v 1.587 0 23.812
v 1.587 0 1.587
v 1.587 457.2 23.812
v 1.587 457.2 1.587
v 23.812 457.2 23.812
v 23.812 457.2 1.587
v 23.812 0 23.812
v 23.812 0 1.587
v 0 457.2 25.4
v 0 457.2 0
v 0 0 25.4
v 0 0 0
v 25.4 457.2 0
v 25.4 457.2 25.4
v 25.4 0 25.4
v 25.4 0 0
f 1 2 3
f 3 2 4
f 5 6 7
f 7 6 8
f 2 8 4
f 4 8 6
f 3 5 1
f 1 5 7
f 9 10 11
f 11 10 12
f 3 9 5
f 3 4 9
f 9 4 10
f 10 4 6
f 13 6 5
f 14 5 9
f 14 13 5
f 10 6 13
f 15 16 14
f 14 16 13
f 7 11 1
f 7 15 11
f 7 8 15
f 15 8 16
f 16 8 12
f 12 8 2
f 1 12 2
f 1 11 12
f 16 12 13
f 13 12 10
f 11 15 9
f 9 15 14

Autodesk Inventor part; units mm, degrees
ref_plane "YZ Plane" through (0, 0, 0) normal (1, 0, 0) x (0, 1, 0)
ref_plane "XZ Plane" through (0, 0, 0) normal (0, 1, 0) x (-1, 0, 0)
ref_plane "XY Plane" through (0, 0, 0) normal (0, 0, 1) x (1, 0, 0)
sketch "Sketch1" plane through (0, 0, 0) normal (0, 0, 1) x (1, 0, 0)
  line L0 (0, 0) -> (25.4, 0)
  line L1 (25.4, 0) -> (25.4, 457.2)
  line L2 (25.4, 457.2) -> (0, 457.2)
  line L3 (0, 457.2) -> (0, 0)
  dimension "d0" = 457.2
  dimension "d1" = 25.4
extrude "Extrusion1" add sketch "Sketch1" along normal blind 25.4
shell "Shell1" thickness 1.5875 removed faces 2 at (16.9333, 457.2, 8.4667) at (8.4667, 0, 8.4667)
properties part number "Frame_VerticalSideGuide_Long" material "Aluminum-6061"
